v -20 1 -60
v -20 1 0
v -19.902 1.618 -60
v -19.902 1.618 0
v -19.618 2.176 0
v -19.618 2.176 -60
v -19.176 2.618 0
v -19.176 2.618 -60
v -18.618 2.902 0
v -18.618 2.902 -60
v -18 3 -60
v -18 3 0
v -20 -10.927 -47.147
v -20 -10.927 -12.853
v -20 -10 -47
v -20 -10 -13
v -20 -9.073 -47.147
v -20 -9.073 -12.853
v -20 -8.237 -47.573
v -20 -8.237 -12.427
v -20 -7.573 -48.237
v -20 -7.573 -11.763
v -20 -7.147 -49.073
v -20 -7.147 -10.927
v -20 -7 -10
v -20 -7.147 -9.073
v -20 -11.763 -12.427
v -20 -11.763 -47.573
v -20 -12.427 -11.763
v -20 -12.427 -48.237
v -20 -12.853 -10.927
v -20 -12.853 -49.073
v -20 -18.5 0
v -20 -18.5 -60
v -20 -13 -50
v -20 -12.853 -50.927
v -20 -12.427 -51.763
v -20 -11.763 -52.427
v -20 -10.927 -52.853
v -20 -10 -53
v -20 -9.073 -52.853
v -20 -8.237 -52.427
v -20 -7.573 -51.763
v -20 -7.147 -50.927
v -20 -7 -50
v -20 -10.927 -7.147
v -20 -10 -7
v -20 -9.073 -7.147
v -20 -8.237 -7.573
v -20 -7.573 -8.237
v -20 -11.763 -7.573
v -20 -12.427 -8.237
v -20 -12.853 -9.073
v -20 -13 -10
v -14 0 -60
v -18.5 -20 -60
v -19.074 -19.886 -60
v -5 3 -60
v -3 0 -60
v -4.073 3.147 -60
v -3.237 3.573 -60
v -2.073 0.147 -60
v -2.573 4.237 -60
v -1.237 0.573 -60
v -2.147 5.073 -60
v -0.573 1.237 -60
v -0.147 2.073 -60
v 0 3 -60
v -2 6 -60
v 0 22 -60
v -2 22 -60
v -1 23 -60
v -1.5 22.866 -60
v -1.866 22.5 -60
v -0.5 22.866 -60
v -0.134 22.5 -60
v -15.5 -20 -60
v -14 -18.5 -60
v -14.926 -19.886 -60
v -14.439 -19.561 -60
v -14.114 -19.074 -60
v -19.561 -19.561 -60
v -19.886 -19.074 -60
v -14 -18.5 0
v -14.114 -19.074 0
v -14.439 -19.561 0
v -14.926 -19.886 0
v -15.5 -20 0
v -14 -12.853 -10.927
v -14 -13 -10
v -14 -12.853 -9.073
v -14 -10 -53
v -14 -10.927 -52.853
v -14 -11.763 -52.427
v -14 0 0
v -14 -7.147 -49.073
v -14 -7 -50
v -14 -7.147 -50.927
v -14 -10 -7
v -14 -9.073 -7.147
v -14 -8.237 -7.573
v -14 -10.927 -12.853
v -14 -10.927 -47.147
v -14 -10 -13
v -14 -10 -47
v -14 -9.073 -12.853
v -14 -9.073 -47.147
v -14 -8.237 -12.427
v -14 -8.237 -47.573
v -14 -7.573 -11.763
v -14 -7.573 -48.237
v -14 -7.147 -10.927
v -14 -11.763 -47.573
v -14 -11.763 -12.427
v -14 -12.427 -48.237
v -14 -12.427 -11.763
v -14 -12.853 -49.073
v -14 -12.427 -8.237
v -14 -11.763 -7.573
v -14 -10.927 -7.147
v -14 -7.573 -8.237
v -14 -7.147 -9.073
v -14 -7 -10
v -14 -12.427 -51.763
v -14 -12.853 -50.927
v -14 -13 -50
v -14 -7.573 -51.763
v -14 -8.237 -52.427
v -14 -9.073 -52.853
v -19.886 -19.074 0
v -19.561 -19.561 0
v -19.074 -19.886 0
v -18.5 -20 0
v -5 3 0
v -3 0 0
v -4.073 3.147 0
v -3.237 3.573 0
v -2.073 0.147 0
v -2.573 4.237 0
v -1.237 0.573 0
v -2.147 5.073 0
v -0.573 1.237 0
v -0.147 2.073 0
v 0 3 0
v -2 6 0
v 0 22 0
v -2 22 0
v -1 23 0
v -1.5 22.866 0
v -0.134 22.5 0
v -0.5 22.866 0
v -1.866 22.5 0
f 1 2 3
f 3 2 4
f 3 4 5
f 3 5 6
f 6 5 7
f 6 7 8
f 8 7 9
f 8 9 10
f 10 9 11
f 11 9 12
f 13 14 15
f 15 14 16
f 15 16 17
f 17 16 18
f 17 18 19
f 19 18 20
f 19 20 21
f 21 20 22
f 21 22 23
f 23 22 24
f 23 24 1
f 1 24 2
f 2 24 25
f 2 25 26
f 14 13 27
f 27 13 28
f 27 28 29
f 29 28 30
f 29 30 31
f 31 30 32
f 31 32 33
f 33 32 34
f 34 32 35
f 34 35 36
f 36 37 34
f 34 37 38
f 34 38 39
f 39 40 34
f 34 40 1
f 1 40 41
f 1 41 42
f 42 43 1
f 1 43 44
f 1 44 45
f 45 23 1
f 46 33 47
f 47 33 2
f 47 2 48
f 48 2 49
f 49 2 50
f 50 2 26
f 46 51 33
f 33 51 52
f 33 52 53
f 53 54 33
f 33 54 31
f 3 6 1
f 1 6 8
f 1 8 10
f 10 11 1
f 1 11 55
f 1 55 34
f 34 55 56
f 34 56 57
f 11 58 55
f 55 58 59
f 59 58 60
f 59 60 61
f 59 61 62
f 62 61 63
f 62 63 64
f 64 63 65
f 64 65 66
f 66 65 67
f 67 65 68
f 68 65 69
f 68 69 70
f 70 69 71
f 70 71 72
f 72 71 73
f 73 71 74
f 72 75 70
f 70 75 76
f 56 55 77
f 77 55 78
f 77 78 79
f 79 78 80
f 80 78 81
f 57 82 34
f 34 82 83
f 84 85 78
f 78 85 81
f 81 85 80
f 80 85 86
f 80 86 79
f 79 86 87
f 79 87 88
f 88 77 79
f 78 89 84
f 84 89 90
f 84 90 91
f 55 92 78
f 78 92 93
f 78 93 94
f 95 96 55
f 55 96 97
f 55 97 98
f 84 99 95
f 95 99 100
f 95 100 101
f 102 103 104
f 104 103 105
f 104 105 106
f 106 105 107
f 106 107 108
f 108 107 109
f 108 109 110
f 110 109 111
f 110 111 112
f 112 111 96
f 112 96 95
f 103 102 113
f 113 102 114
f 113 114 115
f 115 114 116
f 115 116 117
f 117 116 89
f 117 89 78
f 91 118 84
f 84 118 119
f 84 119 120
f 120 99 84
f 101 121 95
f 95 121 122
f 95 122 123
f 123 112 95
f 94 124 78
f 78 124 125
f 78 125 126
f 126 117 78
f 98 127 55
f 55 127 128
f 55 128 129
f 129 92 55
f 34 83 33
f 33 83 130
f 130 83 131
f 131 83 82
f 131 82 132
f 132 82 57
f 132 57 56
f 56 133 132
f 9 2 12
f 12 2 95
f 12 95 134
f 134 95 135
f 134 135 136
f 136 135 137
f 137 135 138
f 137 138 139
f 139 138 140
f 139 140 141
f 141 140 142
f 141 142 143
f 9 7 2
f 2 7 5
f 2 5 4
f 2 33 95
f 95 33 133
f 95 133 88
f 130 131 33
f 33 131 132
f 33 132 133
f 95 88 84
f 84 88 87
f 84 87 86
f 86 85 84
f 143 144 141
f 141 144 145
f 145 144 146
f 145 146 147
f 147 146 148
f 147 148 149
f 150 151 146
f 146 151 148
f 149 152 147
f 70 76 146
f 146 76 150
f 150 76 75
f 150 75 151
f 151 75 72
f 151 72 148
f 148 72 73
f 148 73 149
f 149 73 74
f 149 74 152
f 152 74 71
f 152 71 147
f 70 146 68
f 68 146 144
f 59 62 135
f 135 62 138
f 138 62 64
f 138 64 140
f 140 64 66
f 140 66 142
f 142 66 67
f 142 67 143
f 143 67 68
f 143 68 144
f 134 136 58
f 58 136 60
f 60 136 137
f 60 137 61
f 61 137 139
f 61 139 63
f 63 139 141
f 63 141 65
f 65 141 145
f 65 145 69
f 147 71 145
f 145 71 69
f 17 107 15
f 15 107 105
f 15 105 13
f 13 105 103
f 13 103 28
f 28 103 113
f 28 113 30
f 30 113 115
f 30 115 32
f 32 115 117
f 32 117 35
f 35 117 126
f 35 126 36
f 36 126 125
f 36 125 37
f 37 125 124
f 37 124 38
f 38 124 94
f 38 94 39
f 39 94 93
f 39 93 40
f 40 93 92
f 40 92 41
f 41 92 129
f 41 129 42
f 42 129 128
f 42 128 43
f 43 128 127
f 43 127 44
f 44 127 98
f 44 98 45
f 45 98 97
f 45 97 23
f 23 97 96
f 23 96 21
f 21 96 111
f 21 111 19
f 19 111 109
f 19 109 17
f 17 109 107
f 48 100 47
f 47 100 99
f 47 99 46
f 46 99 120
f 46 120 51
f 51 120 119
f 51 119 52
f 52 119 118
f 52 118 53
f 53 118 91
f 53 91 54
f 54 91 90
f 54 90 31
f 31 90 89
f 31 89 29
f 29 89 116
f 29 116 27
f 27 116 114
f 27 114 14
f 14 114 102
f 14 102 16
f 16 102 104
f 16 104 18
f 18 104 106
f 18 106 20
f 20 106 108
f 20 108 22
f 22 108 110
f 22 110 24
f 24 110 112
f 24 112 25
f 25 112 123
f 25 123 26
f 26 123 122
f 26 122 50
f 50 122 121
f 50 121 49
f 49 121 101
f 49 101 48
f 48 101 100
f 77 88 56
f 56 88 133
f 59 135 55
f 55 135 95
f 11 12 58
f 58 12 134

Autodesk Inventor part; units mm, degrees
ref_plane "YZ Plane" through (0, 0, 0) normal (1, 0, 0) x (0, 1, 0)
ref_plane "XZ Plane" through (0, 0, 0) normal (0, 1, 0) x (-1, 0, 0)
ref_plane "XY Plane" through (0, 0, 0) normal (0, 0, 1) x (1, 0, 0)
sketch "Sketch1" plane through (0, 0, 0) normal (0, 1, 0) x (-1, 0, 0)
  line L0 (0, 0) -> (20, 0)
  line L1 (20, 0) -> (20, -60)
  line L2 (20, -60) -> (0, -60)
  line L3 (0, -60) -> (0, 0)
  dimension "d0" = 20
  dimension "d1" = 60
extrude "Extrusion1" add sketch "Sketch1" along normal blind 3
sketch "Sketch2" plane through (0, 3, 0) normal (0, 1, 0) x (1, 0, 0)
  line L0 (-20, 0) -> (0, 0) projected
  line L1 (0, 0) -> (-2, 0)
  line L2 (-2, 0) -> (-2, 60)
  line L3 (-2, 60) -> (0, 60)
  line L4 (0, 60) -> (0, 0)
  dimension "d4" = 2
  dimension "d5" = 60
extrude "Extrusion2" add sketch "Sketch2" along normal blind 20
sketch "Sketch3" plane through (0, 0, 0) normal (0, -1, 0) x (1, 0, 0)
  line L0 (-20, 0) -> (0, 0) projected
  line L1 (0, -60) -> (-20, -60) projected
  line L2 (-20, 0) -> (-14, 0)
  line L3 (-14, 0) -> (-14, -60)
  line L4 (-14, -60) -> (-20, -60)
  line L5 (-20, -60) -> (-20, 0)
  point P0 (-14, 0)
  dimension "d8" = 6
extrude "Extrusion3" add sketch "Sketch3" along normal blind 20
sketch "Sketch4" plane through (-14, 0, 0) normal (1, 0, 0) x (0, 0, -1)
  line L0 (0, -20) -> (0, 0) projected
  line L1 (0, -10) -> (10, -10)
  line L2 (60, 0) -> (60, -20) projected
  circle A0 centre (10, -10) radius 3
  line L3 (60, -20) -> (0, -20) projected
  line L4 (0, -20) -> (60, -20)
  circle A1 centre (50, -10) radius 3
  point P0 (0, 3)
  point P1 (-60, -3)
  dimension "d11" = 10
  dimension "d12" = 6
  dimension "d15" = 40
extrude "Extrusion4" cut sketch "Sketch4" against normal through all
fillet "Fillet3" radius 3 2 edges at (-2, 3, -30) (0, 0, -30)
fillet "Fillet4" radius 1 2 edges at (0, 23, -30) (-2, 23, -30)
fillet "Fillet6" radius 1.5 2 edges at (-20, -20, -30) (-14, -20, -30)
fillet "Fillet10" radius 2 1 edges at (-20, 3, -30)
properties part number "CableChain_Holder"
